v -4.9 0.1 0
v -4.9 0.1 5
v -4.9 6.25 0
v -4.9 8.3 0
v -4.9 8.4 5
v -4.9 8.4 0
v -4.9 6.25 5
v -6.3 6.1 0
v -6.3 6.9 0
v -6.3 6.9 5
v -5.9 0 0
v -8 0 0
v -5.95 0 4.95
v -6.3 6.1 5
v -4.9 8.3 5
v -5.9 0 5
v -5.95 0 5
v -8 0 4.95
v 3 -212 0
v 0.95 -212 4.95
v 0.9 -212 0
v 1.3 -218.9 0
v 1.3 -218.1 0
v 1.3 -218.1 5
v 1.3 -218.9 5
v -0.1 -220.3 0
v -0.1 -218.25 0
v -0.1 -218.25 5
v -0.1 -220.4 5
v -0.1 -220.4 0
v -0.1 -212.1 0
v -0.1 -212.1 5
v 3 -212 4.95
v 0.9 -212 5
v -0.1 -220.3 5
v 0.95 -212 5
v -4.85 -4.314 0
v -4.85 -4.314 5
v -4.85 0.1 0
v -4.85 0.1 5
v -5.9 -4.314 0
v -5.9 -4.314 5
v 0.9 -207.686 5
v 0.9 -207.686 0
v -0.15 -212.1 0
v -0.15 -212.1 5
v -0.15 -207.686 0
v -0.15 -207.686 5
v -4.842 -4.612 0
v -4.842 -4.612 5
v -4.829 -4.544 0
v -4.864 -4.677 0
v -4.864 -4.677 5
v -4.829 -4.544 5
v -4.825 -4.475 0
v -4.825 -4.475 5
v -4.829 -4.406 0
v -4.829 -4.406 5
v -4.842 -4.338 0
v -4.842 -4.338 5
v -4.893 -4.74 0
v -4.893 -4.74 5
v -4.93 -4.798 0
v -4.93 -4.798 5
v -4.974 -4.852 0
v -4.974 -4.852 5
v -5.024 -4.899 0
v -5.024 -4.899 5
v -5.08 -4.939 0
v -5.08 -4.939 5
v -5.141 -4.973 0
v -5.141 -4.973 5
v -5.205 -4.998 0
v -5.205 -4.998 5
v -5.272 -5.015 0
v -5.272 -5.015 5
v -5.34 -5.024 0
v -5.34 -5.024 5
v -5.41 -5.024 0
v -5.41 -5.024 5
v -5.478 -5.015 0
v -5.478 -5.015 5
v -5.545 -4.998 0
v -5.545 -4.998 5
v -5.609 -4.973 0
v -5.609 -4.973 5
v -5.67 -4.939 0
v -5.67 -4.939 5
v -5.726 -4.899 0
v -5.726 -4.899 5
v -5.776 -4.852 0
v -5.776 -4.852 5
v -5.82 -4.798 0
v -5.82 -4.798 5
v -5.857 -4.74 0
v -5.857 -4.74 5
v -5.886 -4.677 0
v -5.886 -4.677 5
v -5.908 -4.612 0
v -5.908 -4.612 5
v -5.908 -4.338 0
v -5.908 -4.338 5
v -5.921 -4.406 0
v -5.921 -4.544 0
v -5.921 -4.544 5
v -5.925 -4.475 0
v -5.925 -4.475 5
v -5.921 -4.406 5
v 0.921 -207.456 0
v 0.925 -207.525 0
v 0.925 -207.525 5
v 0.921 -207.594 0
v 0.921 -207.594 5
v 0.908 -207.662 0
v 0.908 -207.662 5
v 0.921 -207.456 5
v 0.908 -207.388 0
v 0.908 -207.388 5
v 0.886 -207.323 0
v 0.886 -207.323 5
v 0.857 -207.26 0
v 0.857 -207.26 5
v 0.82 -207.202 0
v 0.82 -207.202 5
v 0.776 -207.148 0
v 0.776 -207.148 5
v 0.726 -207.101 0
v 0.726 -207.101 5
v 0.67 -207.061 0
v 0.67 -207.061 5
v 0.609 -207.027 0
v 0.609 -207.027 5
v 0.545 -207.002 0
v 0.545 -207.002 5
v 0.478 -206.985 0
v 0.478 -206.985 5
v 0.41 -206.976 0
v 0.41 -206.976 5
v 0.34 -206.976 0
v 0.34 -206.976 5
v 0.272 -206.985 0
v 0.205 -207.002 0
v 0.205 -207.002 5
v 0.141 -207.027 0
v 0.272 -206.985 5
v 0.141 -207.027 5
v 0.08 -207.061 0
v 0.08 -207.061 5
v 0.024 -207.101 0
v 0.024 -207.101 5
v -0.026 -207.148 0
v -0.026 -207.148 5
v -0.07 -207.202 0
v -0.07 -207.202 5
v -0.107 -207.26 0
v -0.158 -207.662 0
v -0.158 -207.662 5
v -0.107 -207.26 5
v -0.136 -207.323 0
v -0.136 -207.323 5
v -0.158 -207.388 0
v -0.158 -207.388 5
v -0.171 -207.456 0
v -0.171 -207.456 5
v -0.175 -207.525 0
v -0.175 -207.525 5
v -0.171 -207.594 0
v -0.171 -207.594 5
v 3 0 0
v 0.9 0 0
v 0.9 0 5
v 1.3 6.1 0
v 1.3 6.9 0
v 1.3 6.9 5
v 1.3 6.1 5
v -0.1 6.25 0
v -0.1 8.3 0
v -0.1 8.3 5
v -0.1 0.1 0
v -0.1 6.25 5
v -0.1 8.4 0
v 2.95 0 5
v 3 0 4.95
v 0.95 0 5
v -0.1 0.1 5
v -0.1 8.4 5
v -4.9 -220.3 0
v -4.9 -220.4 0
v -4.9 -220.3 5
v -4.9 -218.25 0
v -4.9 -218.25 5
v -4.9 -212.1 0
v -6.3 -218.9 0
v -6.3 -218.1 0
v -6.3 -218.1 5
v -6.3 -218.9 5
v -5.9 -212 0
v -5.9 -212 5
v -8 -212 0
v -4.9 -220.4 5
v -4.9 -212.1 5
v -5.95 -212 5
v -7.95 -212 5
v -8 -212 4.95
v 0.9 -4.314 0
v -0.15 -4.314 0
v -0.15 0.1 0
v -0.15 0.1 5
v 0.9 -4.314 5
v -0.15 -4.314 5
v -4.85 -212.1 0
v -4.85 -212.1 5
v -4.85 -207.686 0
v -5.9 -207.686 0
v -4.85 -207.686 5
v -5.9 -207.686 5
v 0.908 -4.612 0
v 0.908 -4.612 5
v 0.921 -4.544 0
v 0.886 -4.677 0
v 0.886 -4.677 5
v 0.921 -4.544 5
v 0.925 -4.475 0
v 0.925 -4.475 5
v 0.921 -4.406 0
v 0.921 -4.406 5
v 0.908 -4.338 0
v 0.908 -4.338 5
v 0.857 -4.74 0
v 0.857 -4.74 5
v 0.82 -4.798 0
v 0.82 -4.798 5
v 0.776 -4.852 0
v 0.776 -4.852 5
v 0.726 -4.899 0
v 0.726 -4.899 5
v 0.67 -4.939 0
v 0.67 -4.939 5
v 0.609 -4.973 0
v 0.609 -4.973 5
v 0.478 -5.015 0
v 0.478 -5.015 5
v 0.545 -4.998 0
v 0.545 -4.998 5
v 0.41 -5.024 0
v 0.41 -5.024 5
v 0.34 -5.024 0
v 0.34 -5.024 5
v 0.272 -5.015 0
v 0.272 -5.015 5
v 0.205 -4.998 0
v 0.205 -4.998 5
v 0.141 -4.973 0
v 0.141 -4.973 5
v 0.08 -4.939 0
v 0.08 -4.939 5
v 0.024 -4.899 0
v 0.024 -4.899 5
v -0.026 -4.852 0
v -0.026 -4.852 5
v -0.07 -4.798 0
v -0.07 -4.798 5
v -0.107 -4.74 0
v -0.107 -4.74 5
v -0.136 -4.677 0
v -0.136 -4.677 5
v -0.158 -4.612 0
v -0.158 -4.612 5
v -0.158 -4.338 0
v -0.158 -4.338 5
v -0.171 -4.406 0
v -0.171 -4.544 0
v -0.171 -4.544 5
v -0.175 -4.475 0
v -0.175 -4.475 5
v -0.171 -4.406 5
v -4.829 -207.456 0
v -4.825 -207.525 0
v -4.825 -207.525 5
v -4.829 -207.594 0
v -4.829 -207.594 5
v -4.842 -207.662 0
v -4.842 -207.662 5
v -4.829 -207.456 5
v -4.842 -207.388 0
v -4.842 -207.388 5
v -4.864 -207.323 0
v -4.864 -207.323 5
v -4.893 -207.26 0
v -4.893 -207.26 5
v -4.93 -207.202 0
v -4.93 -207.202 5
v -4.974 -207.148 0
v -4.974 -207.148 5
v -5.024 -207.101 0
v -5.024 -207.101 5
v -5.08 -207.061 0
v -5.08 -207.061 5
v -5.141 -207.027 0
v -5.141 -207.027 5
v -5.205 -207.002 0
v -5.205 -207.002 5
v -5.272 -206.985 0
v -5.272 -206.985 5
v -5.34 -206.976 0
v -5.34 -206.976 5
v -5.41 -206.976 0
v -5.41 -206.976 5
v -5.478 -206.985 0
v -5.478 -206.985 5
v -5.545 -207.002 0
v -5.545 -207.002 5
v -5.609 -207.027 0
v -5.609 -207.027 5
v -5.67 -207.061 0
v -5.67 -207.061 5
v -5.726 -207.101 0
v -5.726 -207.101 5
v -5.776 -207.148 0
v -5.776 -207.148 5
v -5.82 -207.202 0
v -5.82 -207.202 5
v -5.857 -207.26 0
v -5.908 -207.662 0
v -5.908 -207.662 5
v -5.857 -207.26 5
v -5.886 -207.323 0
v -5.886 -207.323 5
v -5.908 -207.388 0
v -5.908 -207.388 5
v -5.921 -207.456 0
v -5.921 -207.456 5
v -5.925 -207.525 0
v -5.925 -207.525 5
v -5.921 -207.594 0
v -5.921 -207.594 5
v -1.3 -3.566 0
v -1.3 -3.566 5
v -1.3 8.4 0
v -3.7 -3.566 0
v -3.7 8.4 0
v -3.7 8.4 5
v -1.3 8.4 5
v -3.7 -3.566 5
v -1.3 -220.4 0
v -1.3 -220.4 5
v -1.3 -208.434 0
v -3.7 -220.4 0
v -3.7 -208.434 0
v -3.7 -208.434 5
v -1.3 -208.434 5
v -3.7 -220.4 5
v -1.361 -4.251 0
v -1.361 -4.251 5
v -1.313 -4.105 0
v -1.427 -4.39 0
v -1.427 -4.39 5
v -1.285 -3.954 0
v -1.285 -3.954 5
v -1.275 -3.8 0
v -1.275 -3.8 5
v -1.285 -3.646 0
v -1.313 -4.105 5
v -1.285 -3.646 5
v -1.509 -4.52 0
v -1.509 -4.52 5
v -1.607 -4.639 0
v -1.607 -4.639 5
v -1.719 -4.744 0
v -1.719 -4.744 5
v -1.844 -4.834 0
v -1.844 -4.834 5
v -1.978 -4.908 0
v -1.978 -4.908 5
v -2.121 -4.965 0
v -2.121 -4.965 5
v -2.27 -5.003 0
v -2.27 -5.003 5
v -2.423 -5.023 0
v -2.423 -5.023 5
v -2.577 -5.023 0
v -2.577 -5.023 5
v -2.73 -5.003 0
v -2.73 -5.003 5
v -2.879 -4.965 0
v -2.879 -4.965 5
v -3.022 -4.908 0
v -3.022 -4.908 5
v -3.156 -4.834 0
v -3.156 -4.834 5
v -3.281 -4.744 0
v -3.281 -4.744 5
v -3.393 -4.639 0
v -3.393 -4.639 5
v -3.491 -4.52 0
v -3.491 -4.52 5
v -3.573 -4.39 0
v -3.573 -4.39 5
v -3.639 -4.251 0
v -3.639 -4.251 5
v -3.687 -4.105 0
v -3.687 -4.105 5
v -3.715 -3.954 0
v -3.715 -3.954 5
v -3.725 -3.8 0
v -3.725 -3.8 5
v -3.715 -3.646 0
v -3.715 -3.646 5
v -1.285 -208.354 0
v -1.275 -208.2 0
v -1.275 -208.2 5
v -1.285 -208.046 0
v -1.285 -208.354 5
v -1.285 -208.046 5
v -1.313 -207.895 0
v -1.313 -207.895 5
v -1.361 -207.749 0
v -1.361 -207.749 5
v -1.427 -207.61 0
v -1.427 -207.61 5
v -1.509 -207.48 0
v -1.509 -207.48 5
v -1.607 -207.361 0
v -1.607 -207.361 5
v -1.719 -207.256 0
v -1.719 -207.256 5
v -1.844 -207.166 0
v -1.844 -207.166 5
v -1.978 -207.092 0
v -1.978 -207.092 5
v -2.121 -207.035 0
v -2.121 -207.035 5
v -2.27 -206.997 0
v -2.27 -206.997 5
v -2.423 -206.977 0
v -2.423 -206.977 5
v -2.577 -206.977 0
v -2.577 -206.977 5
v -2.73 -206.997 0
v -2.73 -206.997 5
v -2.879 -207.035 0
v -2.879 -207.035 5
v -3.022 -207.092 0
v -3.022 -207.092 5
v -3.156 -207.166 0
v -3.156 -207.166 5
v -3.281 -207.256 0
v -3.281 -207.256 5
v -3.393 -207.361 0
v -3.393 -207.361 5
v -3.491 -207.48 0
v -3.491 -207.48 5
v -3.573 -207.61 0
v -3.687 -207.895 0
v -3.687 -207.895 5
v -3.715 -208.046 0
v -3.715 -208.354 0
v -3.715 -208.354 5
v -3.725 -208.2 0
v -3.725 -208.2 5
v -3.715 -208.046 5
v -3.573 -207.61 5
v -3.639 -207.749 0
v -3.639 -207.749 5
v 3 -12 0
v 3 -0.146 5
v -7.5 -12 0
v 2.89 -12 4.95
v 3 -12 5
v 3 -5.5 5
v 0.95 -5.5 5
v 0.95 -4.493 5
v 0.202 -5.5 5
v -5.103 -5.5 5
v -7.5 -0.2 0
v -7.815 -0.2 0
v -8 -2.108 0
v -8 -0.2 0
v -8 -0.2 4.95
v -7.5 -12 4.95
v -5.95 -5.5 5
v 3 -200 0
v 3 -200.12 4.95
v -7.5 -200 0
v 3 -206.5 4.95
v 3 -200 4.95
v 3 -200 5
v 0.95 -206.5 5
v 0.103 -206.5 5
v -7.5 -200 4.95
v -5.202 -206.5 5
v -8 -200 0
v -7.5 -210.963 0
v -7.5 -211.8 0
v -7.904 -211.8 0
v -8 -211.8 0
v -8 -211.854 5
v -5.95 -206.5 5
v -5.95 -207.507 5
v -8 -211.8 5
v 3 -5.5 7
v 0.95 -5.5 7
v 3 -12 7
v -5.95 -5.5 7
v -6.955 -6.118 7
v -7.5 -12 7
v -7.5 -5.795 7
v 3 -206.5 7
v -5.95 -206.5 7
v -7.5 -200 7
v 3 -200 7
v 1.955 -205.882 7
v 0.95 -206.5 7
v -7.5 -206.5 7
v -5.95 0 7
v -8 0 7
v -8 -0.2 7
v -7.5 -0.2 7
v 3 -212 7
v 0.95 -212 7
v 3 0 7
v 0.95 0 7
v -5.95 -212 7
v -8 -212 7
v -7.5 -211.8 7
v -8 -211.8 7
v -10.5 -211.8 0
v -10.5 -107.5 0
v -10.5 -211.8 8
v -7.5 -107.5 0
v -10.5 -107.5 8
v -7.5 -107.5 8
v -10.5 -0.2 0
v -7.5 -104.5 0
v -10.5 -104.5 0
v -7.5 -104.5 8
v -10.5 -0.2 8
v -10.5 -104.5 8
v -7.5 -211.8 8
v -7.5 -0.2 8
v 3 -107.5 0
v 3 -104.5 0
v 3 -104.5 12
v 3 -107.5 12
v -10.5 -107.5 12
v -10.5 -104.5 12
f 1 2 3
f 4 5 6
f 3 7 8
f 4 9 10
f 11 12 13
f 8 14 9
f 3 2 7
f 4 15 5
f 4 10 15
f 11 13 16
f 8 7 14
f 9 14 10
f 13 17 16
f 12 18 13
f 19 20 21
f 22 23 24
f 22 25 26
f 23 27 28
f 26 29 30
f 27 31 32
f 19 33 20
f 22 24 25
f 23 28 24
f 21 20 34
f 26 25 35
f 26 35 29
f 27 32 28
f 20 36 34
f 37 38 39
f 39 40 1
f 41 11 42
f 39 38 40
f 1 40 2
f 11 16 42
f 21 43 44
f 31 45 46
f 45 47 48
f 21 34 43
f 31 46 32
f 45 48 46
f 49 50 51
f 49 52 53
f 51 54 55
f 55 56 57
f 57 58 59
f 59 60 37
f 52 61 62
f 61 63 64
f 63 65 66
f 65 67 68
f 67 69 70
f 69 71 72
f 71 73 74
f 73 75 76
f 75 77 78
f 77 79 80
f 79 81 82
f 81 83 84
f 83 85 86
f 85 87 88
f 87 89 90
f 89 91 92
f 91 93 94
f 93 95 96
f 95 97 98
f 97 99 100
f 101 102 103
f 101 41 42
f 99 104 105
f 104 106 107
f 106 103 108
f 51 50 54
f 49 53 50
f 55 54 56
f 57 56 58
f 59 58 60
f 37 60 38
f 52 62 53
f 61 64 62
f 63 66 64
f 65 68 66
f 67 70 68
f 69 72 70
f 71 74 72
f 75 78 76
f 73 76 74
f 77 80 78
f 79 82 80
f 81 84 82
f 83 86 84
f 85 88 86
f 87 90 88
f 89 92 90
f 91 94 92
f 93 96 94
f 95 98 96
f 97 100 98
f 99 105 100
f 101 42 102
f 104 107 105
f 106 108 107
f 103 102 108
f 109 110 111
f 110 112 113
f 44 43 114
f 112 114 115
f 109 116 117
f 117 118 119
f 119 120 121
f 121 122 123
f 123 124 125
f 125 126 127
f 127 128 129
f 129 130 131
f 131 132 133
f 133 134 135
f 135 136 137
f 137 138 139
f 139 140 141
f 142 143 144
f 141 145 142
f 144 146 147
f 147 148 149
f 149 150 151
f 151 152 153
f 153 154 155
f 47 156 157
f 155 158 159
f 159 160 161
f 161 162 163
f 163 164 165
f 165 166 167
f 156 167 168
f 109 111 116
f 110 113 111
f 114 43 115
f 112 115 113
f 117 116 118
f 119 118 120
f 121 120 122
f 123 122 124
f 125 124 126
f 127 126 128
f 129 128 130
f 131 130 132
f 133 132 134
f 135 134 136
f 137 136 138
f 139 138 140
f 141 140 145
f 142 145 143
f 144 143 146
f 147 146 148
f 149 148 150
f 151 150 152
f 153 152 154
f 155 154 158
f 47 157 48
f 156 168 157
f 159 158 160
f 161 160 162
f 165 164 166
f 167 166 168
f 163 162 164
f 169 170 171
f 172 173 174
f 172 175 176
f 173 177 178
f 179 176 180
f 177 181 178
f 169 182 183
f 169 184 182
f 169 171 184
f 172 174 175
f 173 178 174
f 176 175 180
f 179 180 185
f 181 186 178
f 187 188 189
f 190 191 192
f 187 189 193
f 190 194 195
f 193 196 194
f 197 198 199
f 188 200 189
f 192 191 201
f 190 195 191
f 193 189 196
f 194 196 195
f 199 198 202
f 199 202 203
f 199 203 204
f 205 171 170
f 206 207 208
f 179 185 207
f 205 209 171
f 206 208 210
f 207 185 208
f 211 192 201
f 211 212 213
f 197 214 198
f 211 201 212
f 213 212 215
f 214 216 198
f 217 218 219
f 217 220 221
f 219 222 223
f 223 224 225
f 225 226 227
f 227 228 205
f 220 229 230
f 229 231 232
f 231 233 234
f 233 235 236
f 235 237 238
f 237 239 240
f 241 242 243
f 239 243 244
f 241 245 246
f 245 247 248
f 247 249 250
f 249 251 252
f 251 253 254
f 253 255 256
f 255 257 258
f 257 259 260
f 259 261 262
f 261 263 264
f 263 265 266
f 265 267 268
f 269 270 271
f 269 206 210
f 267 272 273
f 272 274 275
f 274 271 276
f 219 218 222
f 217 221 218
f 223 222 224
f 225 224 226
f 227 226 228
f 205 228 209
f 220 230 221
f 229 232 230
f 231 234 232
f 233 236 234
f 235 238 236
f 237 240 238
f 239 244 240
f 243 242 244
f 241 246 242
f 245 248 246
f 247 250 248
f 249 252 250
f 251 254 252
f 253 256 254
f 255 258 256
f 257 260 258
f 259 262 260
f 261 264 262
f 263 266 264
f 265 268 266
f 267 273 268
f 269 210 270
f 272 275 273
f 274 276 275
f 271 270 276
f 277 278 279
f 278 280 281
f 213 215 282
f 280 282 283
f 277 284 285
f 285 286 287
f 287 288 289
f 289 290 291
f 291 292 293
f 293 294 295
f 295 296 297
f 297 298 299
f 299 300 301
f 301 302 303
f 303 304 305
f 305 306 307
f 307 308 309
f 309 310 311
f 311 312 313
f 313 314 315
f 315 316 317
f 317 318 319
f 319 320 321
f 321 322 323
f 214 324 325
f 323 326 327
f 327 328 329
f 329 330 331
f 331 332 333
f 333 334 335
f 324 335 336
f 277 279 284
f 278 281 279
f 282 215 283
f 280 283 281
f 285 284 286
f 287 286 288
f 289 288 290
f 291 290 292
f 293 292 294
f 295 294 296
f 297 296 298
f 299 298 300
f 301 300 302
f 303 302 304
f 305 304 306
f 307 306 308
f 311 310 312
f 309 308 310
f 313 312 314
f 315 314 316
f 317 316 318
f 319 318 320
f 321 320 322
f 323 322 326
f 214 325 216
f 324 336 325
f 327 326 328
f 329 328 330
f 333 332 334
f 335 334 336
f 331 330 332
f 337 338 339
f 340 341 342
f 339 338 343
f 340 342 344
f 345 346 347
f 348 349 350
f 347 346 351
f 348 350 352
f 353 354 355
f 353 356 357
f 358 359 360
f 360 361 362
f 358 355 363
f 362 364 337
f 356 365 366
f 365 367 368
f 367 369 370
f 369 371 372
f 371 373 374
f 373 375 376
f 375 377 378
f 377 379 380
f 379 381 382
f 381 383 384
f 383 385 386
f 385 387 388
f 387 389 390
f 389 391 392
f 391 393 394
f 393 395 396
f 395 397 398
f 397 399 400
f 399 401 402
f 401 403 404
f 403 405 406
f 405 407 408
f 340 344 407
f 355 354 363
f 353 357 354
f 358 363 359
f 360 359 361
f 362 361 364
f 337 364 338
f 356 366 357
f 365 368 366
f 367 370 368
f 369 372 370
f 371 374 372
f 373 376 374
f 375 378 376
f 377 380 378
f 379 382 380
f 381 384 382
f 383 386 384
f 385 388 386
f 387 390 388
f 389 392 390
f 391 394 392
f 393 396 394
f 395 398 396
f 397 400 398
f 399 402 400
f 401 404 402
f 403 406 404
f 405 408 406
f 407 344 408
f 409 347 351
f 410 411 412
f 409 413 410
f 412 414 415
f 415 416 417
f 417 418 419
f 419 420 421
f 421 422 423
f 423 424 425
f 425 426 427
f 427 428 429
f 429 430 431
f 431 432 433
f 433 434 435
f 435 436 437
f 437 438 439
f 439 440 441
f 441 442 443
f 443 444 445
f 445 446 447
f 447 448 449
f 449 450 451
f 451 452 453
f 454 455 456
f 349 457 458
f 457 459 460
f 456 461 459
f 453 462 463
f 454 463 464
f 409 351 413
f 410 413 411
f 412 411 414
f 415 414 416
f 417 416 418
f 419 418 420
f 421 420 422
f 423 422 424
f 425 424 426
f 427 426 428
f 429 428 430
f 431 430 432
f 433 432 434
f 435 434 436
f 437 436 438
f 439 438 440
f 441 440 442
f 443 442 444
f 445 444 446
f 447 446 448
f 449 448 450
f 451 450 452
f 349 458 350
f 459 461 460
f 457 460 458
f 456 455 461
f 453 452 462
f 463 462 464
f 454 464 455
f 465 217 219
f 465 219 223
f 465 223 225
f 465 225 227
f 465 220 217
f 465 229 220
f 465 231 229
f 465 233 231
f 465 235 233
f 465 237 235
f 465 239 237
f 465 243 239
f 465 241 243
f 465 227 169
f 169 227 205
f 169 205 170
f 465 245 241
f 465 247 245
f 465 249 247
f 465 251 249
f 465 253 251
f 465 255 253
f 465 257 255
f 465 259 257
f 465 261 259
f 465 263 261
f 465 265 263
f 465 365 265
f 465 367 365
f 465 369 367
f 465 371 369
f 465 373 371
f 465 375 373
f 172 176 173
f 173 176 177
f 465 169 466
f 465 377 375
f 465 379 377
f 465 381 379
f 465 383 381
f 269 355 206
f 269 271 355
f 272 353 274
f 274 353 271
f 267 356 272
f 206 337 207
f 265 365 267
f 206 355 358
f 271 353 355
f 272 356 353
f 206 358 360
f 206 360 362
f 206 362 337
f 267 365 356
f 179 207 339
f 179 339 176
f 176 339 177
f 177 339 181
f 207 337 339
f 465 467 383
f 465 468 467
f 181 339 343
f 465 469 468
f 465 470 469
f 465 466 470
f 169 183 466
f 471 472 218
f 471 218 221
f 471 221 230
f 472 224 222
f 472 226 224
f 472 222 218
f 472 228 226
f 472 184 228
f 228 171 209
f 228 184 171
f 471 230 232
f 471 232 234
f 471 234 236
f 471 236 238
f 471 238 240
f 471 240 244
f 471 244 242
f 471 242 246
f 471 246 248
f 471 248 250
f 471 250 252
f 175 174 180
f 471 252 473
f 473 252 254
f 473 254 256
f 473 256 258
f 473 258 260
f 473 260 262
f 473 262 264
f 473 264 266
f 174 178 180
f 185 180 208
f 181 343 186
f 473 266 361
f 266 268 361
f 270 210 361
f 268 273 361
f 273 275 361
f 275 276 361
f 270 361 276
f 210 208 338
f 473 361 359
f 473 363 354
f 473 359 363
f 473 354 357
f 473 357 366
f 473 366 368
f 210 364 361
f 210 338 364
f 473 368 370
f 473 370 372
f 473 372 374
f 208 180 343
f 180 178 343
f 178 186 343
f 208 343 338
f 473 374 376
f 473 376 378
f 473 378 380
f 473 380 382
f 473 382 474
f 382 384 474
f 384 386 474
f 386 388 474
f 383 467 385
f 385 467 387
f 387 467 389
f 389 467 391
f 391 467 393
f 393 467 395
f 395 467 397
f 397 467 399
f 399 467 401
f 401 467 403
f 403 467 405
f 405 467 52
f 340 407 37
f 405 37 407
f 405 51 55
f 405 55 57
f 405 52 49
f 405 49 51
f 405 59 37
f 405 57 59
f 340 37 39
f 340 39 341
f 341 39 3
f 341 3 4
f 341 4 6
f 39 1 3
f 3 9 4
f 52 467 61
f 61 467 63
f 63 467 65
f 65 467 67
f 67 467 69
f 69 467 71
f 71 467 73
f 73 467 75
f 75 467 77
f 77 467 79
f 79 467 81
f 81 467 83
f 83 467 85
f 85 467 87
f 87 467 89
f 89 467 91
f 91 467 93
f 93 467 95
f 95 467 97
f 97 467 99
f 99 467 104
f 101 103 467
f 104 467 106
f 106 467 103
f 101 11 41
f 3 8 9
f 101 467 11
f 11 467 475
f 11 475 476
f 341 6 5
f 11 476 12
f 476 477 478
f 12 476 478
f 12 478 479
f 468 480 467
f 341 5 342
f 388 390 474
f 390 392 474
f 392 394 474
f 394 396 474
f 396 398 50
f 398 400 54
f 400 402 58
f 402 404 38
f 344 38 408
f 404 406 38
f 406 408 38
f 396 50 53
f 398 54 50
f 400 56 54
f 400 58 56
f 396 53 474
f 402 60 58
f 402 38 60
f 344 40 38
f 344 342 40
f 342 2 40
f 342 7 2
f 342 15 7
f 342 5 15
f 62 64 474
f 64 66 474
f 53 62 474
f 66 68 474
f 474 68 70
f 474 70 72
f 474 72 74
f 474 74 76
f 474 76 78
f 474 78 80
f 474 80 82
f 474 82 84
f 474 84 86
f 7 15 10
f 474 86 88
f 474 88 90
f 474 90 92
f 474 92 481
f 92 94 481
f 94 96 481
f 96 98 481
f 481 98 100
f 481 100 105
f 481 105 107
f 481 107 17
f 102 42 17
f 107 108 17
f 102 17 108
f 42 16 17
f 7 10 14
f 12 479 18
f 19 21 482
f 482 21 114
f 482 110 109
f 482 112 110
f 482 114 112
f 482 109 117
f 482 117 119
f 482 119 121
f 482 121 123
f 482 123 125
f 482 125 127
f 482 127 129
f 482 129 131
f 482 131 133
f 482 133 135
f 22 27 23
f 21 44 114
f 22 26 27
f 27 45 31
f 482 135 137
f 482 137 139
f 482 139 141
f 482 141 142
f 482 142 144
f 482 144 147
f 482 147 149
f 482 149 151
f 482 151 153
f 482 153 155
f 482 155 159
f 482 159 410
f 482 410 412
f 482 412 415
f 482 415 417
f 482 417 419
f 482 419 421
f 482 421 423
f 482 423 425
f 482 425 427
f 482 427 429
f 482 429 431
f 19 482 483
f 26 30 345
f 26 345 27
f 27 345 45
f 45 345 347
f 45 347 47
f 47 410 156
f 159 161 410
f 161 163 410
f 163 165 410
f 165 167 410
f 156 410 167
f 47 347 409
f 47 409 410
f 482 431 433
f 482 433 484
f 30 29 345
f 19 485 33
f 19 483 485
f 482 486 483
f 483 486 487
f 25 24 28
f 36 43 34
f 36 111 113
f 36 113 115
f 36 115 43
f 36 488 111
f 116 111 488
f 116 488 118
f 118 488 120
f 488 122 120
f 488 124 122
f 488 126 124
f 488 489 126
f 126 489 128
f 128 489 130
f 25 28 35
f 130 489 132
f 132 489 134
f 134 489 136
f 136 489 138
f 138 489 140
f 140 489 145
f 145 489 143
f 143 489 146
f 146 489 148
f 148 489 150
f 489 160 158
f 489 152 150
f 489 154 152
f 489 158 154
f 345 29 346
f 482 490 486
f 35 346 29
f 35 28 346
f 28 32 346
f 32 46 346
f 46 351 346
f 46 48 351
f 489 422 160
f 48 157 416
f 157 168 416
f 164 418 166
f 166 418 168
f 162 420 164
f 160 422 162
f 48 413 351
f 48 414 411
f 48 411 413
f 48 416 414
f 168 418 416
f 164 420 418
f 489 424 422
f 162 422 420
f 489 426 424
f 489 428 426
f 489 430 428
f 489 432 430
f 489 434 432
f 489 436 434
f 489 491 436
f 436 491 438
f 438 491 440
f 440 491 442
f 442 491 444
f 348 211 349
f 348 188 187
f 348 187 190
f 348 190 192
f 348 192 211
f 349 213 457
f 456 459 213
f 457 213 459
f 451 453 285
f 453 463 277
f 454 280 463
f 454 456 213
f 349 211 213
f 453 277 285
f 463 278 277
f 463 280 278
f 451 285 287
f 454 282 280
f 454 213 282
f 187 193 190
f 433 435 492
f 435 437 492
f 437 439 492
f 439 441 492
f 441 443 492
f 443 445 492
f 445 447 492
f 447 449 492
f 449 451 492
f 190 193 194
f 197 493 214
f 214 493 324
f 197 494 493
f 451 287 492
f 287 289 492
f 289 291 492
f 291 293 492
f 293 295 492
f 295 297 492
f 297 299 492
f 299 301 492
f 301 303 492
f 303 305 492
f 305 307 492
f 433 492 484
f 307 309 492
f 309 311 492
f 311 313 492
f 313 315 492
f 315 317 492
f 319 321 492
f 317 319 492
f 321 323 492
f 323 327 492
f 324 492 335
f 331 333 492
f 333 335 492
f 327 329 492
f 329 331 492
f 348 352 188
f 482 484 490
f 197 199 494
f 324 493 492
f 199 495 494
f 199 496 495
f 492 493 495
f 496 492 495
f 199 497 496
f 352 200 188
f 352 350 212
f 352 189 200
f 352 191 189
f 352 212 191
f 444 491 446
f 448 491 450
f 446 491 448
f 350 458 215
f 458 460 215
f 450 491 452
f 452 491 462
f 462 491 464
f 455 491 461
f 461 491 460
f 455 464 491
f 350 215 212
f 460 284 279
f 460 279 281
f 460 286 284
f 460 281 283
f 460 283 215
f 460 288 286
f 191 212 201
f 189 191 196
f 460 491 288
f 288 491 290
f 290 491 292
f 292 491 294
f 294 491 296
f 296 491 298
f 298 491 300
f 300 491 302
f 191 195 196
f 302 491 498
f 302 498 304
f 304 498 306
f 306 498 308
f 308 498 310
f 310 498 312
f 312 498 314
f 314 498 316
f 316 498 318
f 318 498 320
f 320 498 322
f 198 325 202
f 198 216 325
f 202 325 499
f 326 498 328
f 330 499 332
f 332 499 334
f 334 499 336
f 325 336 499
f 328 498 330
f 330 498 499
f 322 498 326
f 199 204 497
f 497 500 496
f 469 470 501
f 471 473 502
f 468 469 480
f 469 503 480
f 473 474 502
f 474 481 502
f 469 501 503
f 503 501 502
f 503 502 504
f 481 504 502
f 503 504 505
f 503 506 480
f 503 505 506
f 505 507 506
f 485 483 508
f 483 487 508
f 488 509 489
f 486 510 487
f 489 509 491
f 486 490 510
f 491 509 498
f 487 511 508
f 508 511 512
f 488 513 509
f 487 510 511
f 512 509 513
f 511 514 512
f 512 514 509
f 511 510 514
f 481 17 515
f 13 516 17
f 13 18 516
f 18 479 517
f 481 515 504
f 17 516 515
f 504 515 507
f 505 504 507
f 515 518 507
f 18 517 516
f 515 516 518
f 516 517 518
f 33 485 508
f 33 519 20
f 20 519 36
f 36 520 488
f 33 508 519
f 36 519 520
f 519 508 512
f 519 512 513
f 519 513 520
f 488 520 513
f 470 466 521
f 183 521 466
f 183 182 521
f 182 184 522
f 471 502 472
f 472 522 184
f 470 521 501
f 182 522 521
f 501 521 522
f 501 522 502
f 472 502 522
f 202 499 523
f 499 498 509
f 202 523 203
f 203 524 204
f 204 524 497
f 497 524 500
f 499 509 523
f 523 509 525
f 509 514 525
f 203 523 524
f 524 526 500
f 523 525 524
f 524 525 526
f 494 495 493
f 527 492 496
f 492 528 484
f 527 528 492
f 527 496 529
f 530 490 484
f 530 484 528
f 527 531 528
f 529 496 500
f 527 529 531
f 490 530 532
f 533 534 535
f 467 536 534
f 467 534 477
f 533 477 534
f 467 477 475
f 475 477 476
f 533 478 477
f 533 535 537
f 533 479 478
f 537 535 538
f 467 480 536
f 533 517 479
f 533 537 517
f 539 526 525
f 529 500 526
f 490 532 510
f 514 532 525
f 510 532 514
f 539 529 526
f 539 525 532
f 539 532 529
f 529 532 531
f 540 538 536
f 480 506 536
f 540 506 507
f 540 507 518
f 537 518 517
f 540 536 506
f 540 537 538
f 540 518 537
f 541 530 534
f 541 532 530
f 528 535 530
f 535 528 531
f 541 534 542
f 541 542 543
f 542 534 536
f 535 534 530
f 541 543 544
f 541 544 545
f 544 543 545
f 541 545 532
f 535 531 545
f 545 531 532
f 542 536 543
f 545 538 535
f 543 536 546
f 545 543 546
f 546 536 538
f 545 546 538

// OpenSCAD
$fn = 50;

difference() {
	union() {
		translate(v = [0, 0, 0]) {
			rotate(a = [0, 0, 0]) {
				difference() {
					union() {
						translate(v = [0, 0, 2.5]) {
							rotate(a = [0, -90, 0]) {
								difference() {
									union() {
										translate(v = [0, 0, 0]) {
											rotate(a = [0, 0, 0]) {
												difference() {
													union() {
														translate(v = [-2.5, 0, 2.5]) {
															rotate(a = [0, 90.0, 0]) {
																difference() {
																	union() {
																		translate(v = [0, 0, 0]) {
																			rotate(a = [0, 0, 0]) {
																				difference() {
																					union() {
																						translate(v = [0, 0, 0]) {
																							rotate(a = [0, 0, 0]) {
																								difference() {
																									union() {
																										translate(v = [-5.5, -12.0, 0]) {
																											cube(size = [11.0, 20.4, 5.0]);
																										}
																									}
																									union() {
																										translate(v = [0, 0, -0.1]) {
																											linear_extrude(height = 5.2) {
																												polygon(points = [[-2.4, 0], [-2.4, 6.25], [-3.8, 6.1], [-3.8, 6.8999999999999995], [-2.4, 8.299999999999999], [-2.4, 9.399999999999999], [-5.7, 9.399999999999999], [-5.7, 0]]);
																											}
																										}
																										translate(v = [0, 0, -0.1]) {
																											linear_extrude(height = 5.2) {
																												polygon(points = [[-2.35, -4.5], [-2.35, -4.3875], [-2.35, -4.275], [-2.35, -4.1625], [-2.35, -4.05], [-2.35, -3.9375], [-2.35, -3.825], [-2.35, -3.7125], [-2.35, -3.6], [-2.35, -3.4875], [-2.35, -3.375], [-2.35, -3.2625], [-2.35, -3.15], [-2.35, -3.0375], [-2.35, -2.925], [-2.35, -2.8125], [-2.35, -2.7], [-2.35, -2.5875], [-2.35, -2.475], [-2.35, -2.3625], [-2.35, -2.25], [-2.35, -2.1375], [-2.35, -2.025], [-2.35, -1.9125], [-2.35, -1.7999999999999998], [-2.35, -1.6875], [-2.35, -1.5750000000000002], [-2.35, -1.4625], [-2.35, -1.35], [-2.35, -1.2374999999999998], [-2.35, -1.125], [-2.35, -1.0125000000000002], [-2.35, -0.8999999999999999], [-2.35, -0.7875000000000001], [-2.35, -0.6749999999999998], [-2.35, -0.5625], [-2.35, -0.4500000000000002], [-2.35, -0.33750000000000036], [-2.35, -0.22499999999999964], [-2.35, -0.11249999999999982], [-2.35, 0.0], [-2.35, 0.1], [-3.4, 0.1], [-3.4, -4.5]]);
																											}
																										}
																										translate(v = [-2.875, -4.475, -0.1]) {
																											cylinder(h = 5.2, r = 0.55);
																										}
																										translate(v = [0, 0, -0.1]) {
																											linear_extrude(height = 5.2) {
																												polygon(points = [[2.4, 0], [2.4, 6.25], [3.8, 6.1], [3.8, 6.8999999999999995], [2.4, 8.299999999999999], [2.4, 9.399999999999999], [5.7, 9.399999999999999], [5.7, 0]]);
																											}
																										}
																										translate(v = [0, 0, -0.1]) {
																											linear_extrude(height = 5.2) {
																												polygon(points = [[2.35, -4.5], [2.35, -4.3875], [2.35, -4.275], [2.35, -4.1625], [2.35, -4.05], [2.35, -3.9375], [2.35, -3.825], [2.35, -3.7125], [2.35, -3.6], [2.35, -3.4875], [2.35, -3.375], [2.35, -3.2625], [2.35, -3.15], [2.35, -3.0375], [2.35, -2.925], [2.35, -2.8125], [2.35, -2.7], [2.35, -2.5875], [2.35, -2.475], [2.35, -2.3625], [2.35, -2.25], [2.35, -2.1375], [2.35, -2.025], [2.35, -1.9125], [2.35, -1.7999999999999998], [2.35, -1.6875], [2.35, -1.5750000000000002], [2.35, -1.4625], [2.35, -1.35], [2.35, -1.2374999999999998], [2.35, -1.125], [2.35, -1.0125000000000002], [2.35, -0.8999999999999999], [2.35, -0.7875000000000001], [2.35, -0.6749999999999998], [2.35, -0.5625], [2.35, -0.4500000000000002], [2.35, -0.33750000000000036], [2.35, -0.22499999999999964], [2.35, -0.11249999999999982], [2.35, 0.0], [2.35, 0.1], [3.4, 0.1], [3.4, -4.5]]);
																											}
																										}
																										translate(v = [2.875, -4.475, -0.1]) {
																											cylinder(h = 5.2, r = 0.55);
																										}
																										translate(v = [0, 0, -0.1]) {
																											linear_extrude(height = 5.2) {
																												polygon(points = [[-1.2, -3.8499999999999996], [-1.2, -3.6607142857142856], [-1.2, -3.471428571428571], [-1.2, -3.2821428571428566], [-1.2, -3.0928571428571425], [-1.2, -2.9035714285714285], [-1.2, -2.714285714285714], [-1.2, -2.5249999999999995], [-1.2, -2.3357142857142854], [-1.2, -2.1464285714285714], [-1.2, -1.9571428571428569], [-1.2, -1.7678571428571423], [-1.2, -1.5785714285714283], [-1.2, -1.3892857142857138], [-1.2, -1.1999999999999997], [-1.2, -1.0107142857142852], [-1.2, -0.8214285714285712], [-1.2, -0.6321428571428567], [-1.2, -0.4428571428571426], [-1.2, -0.2535714285714281], [-1.2, -0.06428571428571406], [-1.2, 0], [-1.2, 0.12500000000000044], [-1.2, 0.31428571428571495], [-1.2, 0.503571428571429], [-1.2, 0.6928571428571431], [-1.2, 0.8821428571428571], [-1.2, 1.071428571428572], [-1.2, 1.2607142857142861], [-1.2, 1.4500000000000002], [-1.2, 1.6392857142857142], [-1.2, 1.8285714285714292], [-1.2, 2.0178571428571432], [-1.2, 2.2071428571428573], [-1.2, 2.3964285714285714], [-1.2, 2.5857142857142863], [-1.2, 2.7750000000000004], [-1.2, 2.9642857142857144], [-1.2, 3.1535714285714294], [-1.2, 3.3428571428571434], [-1.2, 3.5321428571428575], [-1.2, 3.7214285714285715], [-1.2, 3.9107142857142865], [-1.2, 4.1000000000000005], [-1.2, 4.289285714285715], [-1.2, 4.4785714285714295], [-1.2, 4.667857142857143], [-1.2, 4.857142857142858], [-1.2, 5.046428571428573], [-1.2, 5.235714285714286], [-1.2, 5.425000000000001], [-1.2, 5.614285714285714], [-1.2, 5.803571428571429], [-1.2, 5.992857142857144], [-1.2, 6.1], [-1.2, 6.182142857142857], [-1.2, 6.25], [-1.2, 6.371428571428572], [-1.2, 6.560714285714287], [-1.2, 6.75], [-1.2, 6.939285714285715], [-1.2, 7.128571428571428], [-1.2, 7.317857142857143], [-1.2, 7.507142857142858], [-1.2, 7.696428571428571], [-1.2, 7.885714285714286], [-1.2, 8.075000000000001], [-1.2, 8.264285714285714], [-1.2, 8.45357142857143], [-1.2, 8.642857142857142], [-1.2, 8.832142857142857], [-1.2, 9.021428571428572], [-1.2, 9.210714285714285], [-1.2, 9.4], [1.2, 9.4], [1.2, 9.210714285714285], [1.2, 9.021428571428572], [1.2, 8.832142857142857], [1.2, 8.642857142857142], [1.2, 8.45357142857143], [1.2, 8.264285714285714], [1.2, 8.075000000000001], [1.2, 7.885714285714286], [1.2, 7.696428571428571], [1.2, 7.507142857142858], [1.2, 7.317857142857143], [1.2, 7.128571428571428], [1.2, 6.939285714285715], [1.2, 6.75], [1.2, 6.560714285714287], [1.2, 6.371428571428572], [1.2, 6.25], [1.2, 6.182142857142857], [1.2, 6.1], [1.2, 5.992857142857144], [1.2, 5.803571428571429], [1.2, 5.614285714285714], [1.2, 5.425000000000001], [1.2, 5.235714285714286], [1.2, 5.046428571428573], [1.2, 4.857142857142858], [1.2, 4.667857142857143], [1.2, 4.4785714285714295], [1.2, 4.289285714285715], [1.2, 4.1000000000000005], [1.2, 3.9107142857142865], [1.2, 3.7214285714285715], [1.2, 3.5321428571428575], [1.2, 3.3428571428571434], [1.2, 3.1535714285714294], [1.2, 2.9642857142857144], [1.2, 2.7750000000000004], [1.2, 2.5857142857142863], [1.2, 2.3964285714285714], [1.2, 2.2071428571428573], [1.2, 2.0178571428571432], [1.2, 1.8285714285714292], [1.2, 1.6392857142857142], [1.2, 1.4500000000000002], [1.2, 1.2607142857142861], [1.2, 1.071428571428572], [1.2, 0.8821428571428571], [1.2, 0.6928571428571431], [1.2, 0.503571428571429], [1.2, 0.31428571428571495], [1.2, 0.12500000000000044], [1.2, 0], [1.2, -0.06428571428571406], [1.2, -0.2535714285714281], [1.2, -0.4428571428571426], [1.2, -0.6321428571428567], [1.2, -0.8214285714285712], [1.2, -1.0107142857142852], [1.2, -1.1999999999999997], [1.2, -1.3892857142857138], [1.2, -1.5785714285714283], [1.2, -1.7678571428571423], [1.2, -1.9571428571428569], [1.2, -2.1464285714285714], [1.2, -2.3357142857142854], [1.2, -2.5249999999999995], [1.2, -2.714285714285714], [1.2, -2.9035714285714285], [1.2, -3.0928571428571425], [1.2, -3.2821428571428566], [1.2, -3.471428571428571], [1.2, -3.6607142857142856], [1.2, -3.8499999999999996]]);
																											}
																										}
																										translate(v = [0, -3.8, -0.1]) {
																											cylinder(h = 5.2, r = 1.2249999999999999);
																										}
																									}
																								}
																							}
																						}
																						translate(v = [0, 0, 0]) {
																							rotate(a = [0, 0, 0]) {
																								difference() {
																									union() {
																										translate(v = [-5.5, -12.0, 4.95]) {
																											cube(size = [11.0, 6.5, 2.05]);
																										}
																									}
																									union();
																								}
																							}
																						}
																						translate(v = [-5.5, -12.0, 4.95]) {
																							cube(size = [2.0500000000000003, 12.0, 2.05]);
																						}
																						translate(v = [3.4499999999999997, -12.0, 4.95]) {
																							cube(size = [2.0500000000000003, 12.0, 2.05]);
																						}
																					}
																					union();
																				}
																			}
																		}
																	}
																	union();
																}
															}
														}
													}
													union();
												}
											}
										}
										translate(v = [-2.5, -212.0, 2.5]) {
											rotate(a = [180, -90, 0]) {
												difference() {
													union() {
														translate(v = [0, 0, 0]) {
															rotate(a = [0, 0, 0]) {
																difference() {
																	union() {
																		translate(v = [0, 0, 0]) {
																			rotate(a = [0, 0, 0]) {
																				difference() {
																					union() {
																						translate(v = [-5.5, -12.0, 0]) {
																							cube(size = [11.0, 20.4, 5.0]);
																						}
																					}
																					union() {
																						translate(v = [0, 0, -0.1]) {
																							linear_extrude(height = 5.2) {
																								polygon(points = [[-2.4, 0], [-2.4, 6.25], [-3.8, 6.1], [-3.8, 6.8999999999999995], [-2.4, 8.299999999999999], [-2.4, 9.399999999999999], [-5.7, 9.399999999999999], [-5.7, 0]]);
																							}
																						}
																						translate(v = [0, 0, -0.1]) {
																							linear_extrude(height = 5.2) {
																								polygon(points = [[-2.35, -4.5], [-2.35, -4.3875], [-2.35, -4.275], [-2.35, -4.1625], [-2.35, -4.05], [-2.35, -3.9375], [-2.35, -3.825], [-2.35, -3.7125], [-2.35, -3.6], [-2.35, -3.4875], [-2.35, -3.375], [-2.35, -3.2625], [-2.35, -3.15], [-2.35, -3.0375], [-2.35, -2.925], [-2.35, -2.8125], [-2.35, -2.7], [-2.35, -2.5875], [-2.35, -2.475], [-2.35, -2.3625], [-2.35, -2.25], [-2.35, -2.1375], [-2.35, -2.025], [-2.35, -1.9125], [-2.35, -1.7999999999999998], [-2.35, -1.6875], [-2.35, -1.5750000000000002], [-2.35, -1.4625], [-2.35, -1.35], [-2.35, -1.2374999999999998], [-2.35, -1.125], [-2.35, -1.0125000000000002], [-2.35, -0.8999999999999999], [-2.35, -0.7875000000000001], [-2.35, -0.6749999999999998], [-2.35, -0.5625], [-2.35, -0.4500000000000002], [-2.35, -0.33750000000000036], [-2.35, -0.22499999999999964], [-2.35, -0.11249999999999982], [-2.35, 0.0], [-2.35, 0.1], [-3.4, 0.1], [-3.4, -4.5]]);
																							}
																						}
																						translate(v = [-2.875, -4.475, -0.1]) {
																							cylinder(h = 5.2, r = 0.55);
																						}
																						translate(v = [0, 0, -0.1]) {
																							linear_extrude(height = 5.2) {
																								polygon(points = [[2.4, 0], [2.4, 6.25], [3.8, 6.1], [3.8, 6.8999999999999995], [2.4, 8.299999999999999], [2.4, 9.399999999999999], [5.7, 9.399999999999999], [5.7, 0]]);
																							}
																						}
																						translate(v = [0, 0, -0.1]) {
																							linear_extrude(height = 5.2) {
																								polygon(points = [[2.35, -4.5], [2.35, -4.3875], [2.35, -4.275], [2.35, -4.1625], [2.35, -4.05], [2.35, -3.9375], [2.35, -3.825], [2.35, -3.7125], [2.35, -3.6], [2.35, -3.4875], [2.35, -3.375], [2.35, -3.2625], [2.35, -3.15], [2.35, -3.0375], [2.35, -2.925], [2.35, -2.8125], [2.35, -2.7], [2.35, -2.5875], [2.35, -2.475], [2.35, -2.3625], [2.35, -2.25], [2.35, -2.1375], [2.35, -2.025], [2.35, -1.9125], [2.35, -1.7999999999999998], [2.35, -1.6875], [2.35, -1.5750000000000002], [2.35, -1.4625], [2.35, -1.35], [2.35, -1.2374999999999998], [2.35, -1.125], [2.35, -1.0125000000000002], [2.35, -0.8999999999999999], [2.35, -0.7875000000000001], [2.35, -0.6749999999999998], [2.35, -0.5625], [2.35, -0.4500000000000002], [2.35, -0.33750000000000036], [2.35, -0.22499999999999964], [2.35, -0.11249999999999982], [2.35, 0.0], [2.35, 0.1], [3.4, 0.1], [3.4, -4.5]]);
																							}
																						}
																						translate(v = [2.875, -4.475, -0.1]) {
																							cylinder(h = 5.2, r = 0.55);
																						}
																						translate(v = [0, 0, -0.1]) {
																							linear_extrude(height = 5.2) {
																								polygon(points = [[-1.2, -3.8499999999999996], [-1.2, -3.6607142857142856], [-1.2, -3.471428571428571], [-1.2, -3.2821428571428566], [-1.2, -3.0928571428571425], [-1.2, -2.9035714285714285], [-1.2, -2.714285714285714], [-1.2, -2.5249999999999995], [-1.2, -2.3357142857142854], [-1.2, -2.1464285714285714], [-1.2, -1.9571428571428569], [-1.2, -1.7678571428571423], [-1.2, -1.5785714285714283], [-1.2, -1.3892857142857138], [-1.2, -1.1999999999999997], [-1.2, -1.0107142857142852], [-1.2, -0.8214285714285712], [-1.2, -0.6321428571428567], [-1.2, -0.4428571428571426], [-1.2, -0.2535714285714281], [-1.2, -0.06428571428571406], [-1.2, 0], [-1.2, 0.12500000000000044], [-1.2, 0.31428571428571495], [-1.2, 0.503571428571429], [-1.2, 0.6928571428571431], [-1.2, 0.8821428571428571], [-1.2, 1.071428571428572], [-1.2, 1.2607142857142861], [-1.2, 1.4500000000000002], [-1.2, 1.6392857142857142], [-1.2, 1.8285714285714292], [-1.2, 2.0178571428571432], [-1.2, 2.2071428571428573], [-1.2, 2.3964285714285714], [-1.2, 2.5857142857142863], [-1.2, 2.7750000000000004], [-1.2, 2.9642857142857144], [-1.2, 3.1535714285714294], [-1.2, 3.3428571428571434], [-1.2, 3.5321428571428575], [-1.2, 3.7214285714285715], [-1.2, 3.9107142857142865], [-1.2, 4.1000000000000005], [-1.2, 4.289285714285715], [-1.2, 4.4785714285714295], [-1.2, 4.667857142857143], [-1.2, 4.857142857142858], [-1.2, 5.046428571428573], [-1.2, 5.235714285714286], [-1.2, 5.425000000000001], [-1.2, 5.614285714285714], [-1.2, 5.803571428571429], [-1.2, 5.992857142857144], [-1.2, 6.1], [-1.2, 6.182142857142857], [-1.2, 6.25], [-1.2, 6.371428571428572], [-1.2, 6.560714285714287], [-1.2, 6.75], [-1.2, 6.939285714285715], [-1.2, 7.128571428571428], [-1.2, 7.317857142857143], [-1.2, 7.507142857142858], [-1.2, 7.696428571428571], [-1.2, 7.885714285714286], [-1.2, 8.075000000000001], [-1.2, 8.264285714285714], [-1.2, 8.45357142857143], [-1.2, 8.642857142857142], [-1.2, 8.832142857142857], [-1.2, 9.021428571428572], [-1.2, 9.210714285714285], [-1.2, 9.4], [1.2, 9.4], [1.2, 9.210714285714285], [1.2, 9.021428571428572], [1.2, 8.832142857142857], [1.2, 8.642857142857142], [1.2, 8.45357142857143], [1.2, 8.264285714285714], [1.2, 8.075000000000001], [1.2, 7.885714285714286], [1.2, 7.696428571428571], [1.2, 7.507142857142858], [1.2, 7.317857142857143], [1.2, 7.128571428571428], [1.2, 6.939285714285715], [1.2, 6.75], [1.2, 6.560714285714287], [1.2, 6.371428571428572], [1.2, 6.25], [1.2, 6.182142857142857], [1.2, 6.1], [1.2, 5.992857142857144], [1.2, 5.803571428571429], [1.2, 5.614285714285714], [1.2, 5.425000000000001], [1.2, 5.235714285714286], [1.2, 5.046428571428573], [1.2, 4.857142857142858], [1.2, 4.667857142857143], [1.2, 4.4785714285714295], [1.2, 4.289285714285715], [1.2, 4.1000000000000005], [1.2, 3.9107142857142865], [1.2, 3.7214285714285715], [1.2, 3.5321428571428575], [1.2, 3.3428571428571434], [1.2, 3.1535714285714294], [1.2, 2.9642857142857144], [1.2, 2.7750000000000004], [1.2, 2.5857142857142863], [1.2, 2.3964285714285714], [1.2, 2.2071428571428573], [1.2, 2.0178571428571432], [1.2, 1.8285714285714292], [1.2, 1.6392857142857142], [1.2, 1.4500000000000002], [1.2, 1.2607142857142861], [1.2, 1.071428571428572], [1.2, 0.8821428571428571], [1.2, 0.6928571428571431], [1.2, 0.503571428571429], [1.2, 0.31428571428571495], [1.2, 0.12500000000000044], [1.2, 0], [1.2, -0.06428571428571406], [1.2, -0.2535714285714281], [1.2, -0.4428571428571426], [1.2, -0.6321428571428567], [1.2, -0.8214285714285712], [1.2, -1.0107142857142852], [1.2, -1.1999999999999997], [1.2, -1.3892857142857138], [1.2, -1.5785714285714283], [1.2, -1.7678571428571423], [1.2, -1.9571428571428569], [1.2, -2.1464285714285714], [1.2, -2.3357142857142854], [1.2, -2.5249999999999995], [1.2, -2.714285714285714], [1.2, -2.9035714285714285], [1.2, -3.0928571428571425], [1.2, -3.2821428571428566], [1.2, -3.471428571428571], [1.2, -3.6607142857142856], [1.2, -3.8499999999999996]]);
																							}
																						}
																						translate(v = [0, -3.8, -0.1]) {
																							cylinder(h = 5.2, r = 1.2249999999999999);
																						}
																					}
																				}
																			}
																		}
																		translate(v = [0, 0, 0]) {
																			rotate(a = [0, 0, 0]) {
																				difference() {
																					union() {
																						translate(v = [-5.5, -12.0, 4.95]) {
																							cube(size = [11.0, 6.5, 2.05]);
																						}
																					}
																					union();
																				}
																			}
																		}
																		translate(v = [-5.5, -12.0, 4.95]) {
																			cube(size = [2.0500000000000003, 12.0, 2.05]);
																		}
																		translate(v = [3.4499999999999997, -12.0, 4.95]) {
																			cube(size = [2.0500000000000003, 12.0, 2.05]);
																		}
																	}
																	union();
																}
															}
														}
													}
													union();
												}
											}
										}
										translate(v = [-2.5, -211.8, 7.5]) {
											cube(size = [8.0, 211.6, 3.0]);
										}
										translate(v = [-2.5, -107.5, -3.0]) {
											cube(size = [12.0, 3.0, 13.5]);
										}
									}
									union();
								}
							}
						}
					}
					union();
				}
			}
		}
	}
	union();
}
